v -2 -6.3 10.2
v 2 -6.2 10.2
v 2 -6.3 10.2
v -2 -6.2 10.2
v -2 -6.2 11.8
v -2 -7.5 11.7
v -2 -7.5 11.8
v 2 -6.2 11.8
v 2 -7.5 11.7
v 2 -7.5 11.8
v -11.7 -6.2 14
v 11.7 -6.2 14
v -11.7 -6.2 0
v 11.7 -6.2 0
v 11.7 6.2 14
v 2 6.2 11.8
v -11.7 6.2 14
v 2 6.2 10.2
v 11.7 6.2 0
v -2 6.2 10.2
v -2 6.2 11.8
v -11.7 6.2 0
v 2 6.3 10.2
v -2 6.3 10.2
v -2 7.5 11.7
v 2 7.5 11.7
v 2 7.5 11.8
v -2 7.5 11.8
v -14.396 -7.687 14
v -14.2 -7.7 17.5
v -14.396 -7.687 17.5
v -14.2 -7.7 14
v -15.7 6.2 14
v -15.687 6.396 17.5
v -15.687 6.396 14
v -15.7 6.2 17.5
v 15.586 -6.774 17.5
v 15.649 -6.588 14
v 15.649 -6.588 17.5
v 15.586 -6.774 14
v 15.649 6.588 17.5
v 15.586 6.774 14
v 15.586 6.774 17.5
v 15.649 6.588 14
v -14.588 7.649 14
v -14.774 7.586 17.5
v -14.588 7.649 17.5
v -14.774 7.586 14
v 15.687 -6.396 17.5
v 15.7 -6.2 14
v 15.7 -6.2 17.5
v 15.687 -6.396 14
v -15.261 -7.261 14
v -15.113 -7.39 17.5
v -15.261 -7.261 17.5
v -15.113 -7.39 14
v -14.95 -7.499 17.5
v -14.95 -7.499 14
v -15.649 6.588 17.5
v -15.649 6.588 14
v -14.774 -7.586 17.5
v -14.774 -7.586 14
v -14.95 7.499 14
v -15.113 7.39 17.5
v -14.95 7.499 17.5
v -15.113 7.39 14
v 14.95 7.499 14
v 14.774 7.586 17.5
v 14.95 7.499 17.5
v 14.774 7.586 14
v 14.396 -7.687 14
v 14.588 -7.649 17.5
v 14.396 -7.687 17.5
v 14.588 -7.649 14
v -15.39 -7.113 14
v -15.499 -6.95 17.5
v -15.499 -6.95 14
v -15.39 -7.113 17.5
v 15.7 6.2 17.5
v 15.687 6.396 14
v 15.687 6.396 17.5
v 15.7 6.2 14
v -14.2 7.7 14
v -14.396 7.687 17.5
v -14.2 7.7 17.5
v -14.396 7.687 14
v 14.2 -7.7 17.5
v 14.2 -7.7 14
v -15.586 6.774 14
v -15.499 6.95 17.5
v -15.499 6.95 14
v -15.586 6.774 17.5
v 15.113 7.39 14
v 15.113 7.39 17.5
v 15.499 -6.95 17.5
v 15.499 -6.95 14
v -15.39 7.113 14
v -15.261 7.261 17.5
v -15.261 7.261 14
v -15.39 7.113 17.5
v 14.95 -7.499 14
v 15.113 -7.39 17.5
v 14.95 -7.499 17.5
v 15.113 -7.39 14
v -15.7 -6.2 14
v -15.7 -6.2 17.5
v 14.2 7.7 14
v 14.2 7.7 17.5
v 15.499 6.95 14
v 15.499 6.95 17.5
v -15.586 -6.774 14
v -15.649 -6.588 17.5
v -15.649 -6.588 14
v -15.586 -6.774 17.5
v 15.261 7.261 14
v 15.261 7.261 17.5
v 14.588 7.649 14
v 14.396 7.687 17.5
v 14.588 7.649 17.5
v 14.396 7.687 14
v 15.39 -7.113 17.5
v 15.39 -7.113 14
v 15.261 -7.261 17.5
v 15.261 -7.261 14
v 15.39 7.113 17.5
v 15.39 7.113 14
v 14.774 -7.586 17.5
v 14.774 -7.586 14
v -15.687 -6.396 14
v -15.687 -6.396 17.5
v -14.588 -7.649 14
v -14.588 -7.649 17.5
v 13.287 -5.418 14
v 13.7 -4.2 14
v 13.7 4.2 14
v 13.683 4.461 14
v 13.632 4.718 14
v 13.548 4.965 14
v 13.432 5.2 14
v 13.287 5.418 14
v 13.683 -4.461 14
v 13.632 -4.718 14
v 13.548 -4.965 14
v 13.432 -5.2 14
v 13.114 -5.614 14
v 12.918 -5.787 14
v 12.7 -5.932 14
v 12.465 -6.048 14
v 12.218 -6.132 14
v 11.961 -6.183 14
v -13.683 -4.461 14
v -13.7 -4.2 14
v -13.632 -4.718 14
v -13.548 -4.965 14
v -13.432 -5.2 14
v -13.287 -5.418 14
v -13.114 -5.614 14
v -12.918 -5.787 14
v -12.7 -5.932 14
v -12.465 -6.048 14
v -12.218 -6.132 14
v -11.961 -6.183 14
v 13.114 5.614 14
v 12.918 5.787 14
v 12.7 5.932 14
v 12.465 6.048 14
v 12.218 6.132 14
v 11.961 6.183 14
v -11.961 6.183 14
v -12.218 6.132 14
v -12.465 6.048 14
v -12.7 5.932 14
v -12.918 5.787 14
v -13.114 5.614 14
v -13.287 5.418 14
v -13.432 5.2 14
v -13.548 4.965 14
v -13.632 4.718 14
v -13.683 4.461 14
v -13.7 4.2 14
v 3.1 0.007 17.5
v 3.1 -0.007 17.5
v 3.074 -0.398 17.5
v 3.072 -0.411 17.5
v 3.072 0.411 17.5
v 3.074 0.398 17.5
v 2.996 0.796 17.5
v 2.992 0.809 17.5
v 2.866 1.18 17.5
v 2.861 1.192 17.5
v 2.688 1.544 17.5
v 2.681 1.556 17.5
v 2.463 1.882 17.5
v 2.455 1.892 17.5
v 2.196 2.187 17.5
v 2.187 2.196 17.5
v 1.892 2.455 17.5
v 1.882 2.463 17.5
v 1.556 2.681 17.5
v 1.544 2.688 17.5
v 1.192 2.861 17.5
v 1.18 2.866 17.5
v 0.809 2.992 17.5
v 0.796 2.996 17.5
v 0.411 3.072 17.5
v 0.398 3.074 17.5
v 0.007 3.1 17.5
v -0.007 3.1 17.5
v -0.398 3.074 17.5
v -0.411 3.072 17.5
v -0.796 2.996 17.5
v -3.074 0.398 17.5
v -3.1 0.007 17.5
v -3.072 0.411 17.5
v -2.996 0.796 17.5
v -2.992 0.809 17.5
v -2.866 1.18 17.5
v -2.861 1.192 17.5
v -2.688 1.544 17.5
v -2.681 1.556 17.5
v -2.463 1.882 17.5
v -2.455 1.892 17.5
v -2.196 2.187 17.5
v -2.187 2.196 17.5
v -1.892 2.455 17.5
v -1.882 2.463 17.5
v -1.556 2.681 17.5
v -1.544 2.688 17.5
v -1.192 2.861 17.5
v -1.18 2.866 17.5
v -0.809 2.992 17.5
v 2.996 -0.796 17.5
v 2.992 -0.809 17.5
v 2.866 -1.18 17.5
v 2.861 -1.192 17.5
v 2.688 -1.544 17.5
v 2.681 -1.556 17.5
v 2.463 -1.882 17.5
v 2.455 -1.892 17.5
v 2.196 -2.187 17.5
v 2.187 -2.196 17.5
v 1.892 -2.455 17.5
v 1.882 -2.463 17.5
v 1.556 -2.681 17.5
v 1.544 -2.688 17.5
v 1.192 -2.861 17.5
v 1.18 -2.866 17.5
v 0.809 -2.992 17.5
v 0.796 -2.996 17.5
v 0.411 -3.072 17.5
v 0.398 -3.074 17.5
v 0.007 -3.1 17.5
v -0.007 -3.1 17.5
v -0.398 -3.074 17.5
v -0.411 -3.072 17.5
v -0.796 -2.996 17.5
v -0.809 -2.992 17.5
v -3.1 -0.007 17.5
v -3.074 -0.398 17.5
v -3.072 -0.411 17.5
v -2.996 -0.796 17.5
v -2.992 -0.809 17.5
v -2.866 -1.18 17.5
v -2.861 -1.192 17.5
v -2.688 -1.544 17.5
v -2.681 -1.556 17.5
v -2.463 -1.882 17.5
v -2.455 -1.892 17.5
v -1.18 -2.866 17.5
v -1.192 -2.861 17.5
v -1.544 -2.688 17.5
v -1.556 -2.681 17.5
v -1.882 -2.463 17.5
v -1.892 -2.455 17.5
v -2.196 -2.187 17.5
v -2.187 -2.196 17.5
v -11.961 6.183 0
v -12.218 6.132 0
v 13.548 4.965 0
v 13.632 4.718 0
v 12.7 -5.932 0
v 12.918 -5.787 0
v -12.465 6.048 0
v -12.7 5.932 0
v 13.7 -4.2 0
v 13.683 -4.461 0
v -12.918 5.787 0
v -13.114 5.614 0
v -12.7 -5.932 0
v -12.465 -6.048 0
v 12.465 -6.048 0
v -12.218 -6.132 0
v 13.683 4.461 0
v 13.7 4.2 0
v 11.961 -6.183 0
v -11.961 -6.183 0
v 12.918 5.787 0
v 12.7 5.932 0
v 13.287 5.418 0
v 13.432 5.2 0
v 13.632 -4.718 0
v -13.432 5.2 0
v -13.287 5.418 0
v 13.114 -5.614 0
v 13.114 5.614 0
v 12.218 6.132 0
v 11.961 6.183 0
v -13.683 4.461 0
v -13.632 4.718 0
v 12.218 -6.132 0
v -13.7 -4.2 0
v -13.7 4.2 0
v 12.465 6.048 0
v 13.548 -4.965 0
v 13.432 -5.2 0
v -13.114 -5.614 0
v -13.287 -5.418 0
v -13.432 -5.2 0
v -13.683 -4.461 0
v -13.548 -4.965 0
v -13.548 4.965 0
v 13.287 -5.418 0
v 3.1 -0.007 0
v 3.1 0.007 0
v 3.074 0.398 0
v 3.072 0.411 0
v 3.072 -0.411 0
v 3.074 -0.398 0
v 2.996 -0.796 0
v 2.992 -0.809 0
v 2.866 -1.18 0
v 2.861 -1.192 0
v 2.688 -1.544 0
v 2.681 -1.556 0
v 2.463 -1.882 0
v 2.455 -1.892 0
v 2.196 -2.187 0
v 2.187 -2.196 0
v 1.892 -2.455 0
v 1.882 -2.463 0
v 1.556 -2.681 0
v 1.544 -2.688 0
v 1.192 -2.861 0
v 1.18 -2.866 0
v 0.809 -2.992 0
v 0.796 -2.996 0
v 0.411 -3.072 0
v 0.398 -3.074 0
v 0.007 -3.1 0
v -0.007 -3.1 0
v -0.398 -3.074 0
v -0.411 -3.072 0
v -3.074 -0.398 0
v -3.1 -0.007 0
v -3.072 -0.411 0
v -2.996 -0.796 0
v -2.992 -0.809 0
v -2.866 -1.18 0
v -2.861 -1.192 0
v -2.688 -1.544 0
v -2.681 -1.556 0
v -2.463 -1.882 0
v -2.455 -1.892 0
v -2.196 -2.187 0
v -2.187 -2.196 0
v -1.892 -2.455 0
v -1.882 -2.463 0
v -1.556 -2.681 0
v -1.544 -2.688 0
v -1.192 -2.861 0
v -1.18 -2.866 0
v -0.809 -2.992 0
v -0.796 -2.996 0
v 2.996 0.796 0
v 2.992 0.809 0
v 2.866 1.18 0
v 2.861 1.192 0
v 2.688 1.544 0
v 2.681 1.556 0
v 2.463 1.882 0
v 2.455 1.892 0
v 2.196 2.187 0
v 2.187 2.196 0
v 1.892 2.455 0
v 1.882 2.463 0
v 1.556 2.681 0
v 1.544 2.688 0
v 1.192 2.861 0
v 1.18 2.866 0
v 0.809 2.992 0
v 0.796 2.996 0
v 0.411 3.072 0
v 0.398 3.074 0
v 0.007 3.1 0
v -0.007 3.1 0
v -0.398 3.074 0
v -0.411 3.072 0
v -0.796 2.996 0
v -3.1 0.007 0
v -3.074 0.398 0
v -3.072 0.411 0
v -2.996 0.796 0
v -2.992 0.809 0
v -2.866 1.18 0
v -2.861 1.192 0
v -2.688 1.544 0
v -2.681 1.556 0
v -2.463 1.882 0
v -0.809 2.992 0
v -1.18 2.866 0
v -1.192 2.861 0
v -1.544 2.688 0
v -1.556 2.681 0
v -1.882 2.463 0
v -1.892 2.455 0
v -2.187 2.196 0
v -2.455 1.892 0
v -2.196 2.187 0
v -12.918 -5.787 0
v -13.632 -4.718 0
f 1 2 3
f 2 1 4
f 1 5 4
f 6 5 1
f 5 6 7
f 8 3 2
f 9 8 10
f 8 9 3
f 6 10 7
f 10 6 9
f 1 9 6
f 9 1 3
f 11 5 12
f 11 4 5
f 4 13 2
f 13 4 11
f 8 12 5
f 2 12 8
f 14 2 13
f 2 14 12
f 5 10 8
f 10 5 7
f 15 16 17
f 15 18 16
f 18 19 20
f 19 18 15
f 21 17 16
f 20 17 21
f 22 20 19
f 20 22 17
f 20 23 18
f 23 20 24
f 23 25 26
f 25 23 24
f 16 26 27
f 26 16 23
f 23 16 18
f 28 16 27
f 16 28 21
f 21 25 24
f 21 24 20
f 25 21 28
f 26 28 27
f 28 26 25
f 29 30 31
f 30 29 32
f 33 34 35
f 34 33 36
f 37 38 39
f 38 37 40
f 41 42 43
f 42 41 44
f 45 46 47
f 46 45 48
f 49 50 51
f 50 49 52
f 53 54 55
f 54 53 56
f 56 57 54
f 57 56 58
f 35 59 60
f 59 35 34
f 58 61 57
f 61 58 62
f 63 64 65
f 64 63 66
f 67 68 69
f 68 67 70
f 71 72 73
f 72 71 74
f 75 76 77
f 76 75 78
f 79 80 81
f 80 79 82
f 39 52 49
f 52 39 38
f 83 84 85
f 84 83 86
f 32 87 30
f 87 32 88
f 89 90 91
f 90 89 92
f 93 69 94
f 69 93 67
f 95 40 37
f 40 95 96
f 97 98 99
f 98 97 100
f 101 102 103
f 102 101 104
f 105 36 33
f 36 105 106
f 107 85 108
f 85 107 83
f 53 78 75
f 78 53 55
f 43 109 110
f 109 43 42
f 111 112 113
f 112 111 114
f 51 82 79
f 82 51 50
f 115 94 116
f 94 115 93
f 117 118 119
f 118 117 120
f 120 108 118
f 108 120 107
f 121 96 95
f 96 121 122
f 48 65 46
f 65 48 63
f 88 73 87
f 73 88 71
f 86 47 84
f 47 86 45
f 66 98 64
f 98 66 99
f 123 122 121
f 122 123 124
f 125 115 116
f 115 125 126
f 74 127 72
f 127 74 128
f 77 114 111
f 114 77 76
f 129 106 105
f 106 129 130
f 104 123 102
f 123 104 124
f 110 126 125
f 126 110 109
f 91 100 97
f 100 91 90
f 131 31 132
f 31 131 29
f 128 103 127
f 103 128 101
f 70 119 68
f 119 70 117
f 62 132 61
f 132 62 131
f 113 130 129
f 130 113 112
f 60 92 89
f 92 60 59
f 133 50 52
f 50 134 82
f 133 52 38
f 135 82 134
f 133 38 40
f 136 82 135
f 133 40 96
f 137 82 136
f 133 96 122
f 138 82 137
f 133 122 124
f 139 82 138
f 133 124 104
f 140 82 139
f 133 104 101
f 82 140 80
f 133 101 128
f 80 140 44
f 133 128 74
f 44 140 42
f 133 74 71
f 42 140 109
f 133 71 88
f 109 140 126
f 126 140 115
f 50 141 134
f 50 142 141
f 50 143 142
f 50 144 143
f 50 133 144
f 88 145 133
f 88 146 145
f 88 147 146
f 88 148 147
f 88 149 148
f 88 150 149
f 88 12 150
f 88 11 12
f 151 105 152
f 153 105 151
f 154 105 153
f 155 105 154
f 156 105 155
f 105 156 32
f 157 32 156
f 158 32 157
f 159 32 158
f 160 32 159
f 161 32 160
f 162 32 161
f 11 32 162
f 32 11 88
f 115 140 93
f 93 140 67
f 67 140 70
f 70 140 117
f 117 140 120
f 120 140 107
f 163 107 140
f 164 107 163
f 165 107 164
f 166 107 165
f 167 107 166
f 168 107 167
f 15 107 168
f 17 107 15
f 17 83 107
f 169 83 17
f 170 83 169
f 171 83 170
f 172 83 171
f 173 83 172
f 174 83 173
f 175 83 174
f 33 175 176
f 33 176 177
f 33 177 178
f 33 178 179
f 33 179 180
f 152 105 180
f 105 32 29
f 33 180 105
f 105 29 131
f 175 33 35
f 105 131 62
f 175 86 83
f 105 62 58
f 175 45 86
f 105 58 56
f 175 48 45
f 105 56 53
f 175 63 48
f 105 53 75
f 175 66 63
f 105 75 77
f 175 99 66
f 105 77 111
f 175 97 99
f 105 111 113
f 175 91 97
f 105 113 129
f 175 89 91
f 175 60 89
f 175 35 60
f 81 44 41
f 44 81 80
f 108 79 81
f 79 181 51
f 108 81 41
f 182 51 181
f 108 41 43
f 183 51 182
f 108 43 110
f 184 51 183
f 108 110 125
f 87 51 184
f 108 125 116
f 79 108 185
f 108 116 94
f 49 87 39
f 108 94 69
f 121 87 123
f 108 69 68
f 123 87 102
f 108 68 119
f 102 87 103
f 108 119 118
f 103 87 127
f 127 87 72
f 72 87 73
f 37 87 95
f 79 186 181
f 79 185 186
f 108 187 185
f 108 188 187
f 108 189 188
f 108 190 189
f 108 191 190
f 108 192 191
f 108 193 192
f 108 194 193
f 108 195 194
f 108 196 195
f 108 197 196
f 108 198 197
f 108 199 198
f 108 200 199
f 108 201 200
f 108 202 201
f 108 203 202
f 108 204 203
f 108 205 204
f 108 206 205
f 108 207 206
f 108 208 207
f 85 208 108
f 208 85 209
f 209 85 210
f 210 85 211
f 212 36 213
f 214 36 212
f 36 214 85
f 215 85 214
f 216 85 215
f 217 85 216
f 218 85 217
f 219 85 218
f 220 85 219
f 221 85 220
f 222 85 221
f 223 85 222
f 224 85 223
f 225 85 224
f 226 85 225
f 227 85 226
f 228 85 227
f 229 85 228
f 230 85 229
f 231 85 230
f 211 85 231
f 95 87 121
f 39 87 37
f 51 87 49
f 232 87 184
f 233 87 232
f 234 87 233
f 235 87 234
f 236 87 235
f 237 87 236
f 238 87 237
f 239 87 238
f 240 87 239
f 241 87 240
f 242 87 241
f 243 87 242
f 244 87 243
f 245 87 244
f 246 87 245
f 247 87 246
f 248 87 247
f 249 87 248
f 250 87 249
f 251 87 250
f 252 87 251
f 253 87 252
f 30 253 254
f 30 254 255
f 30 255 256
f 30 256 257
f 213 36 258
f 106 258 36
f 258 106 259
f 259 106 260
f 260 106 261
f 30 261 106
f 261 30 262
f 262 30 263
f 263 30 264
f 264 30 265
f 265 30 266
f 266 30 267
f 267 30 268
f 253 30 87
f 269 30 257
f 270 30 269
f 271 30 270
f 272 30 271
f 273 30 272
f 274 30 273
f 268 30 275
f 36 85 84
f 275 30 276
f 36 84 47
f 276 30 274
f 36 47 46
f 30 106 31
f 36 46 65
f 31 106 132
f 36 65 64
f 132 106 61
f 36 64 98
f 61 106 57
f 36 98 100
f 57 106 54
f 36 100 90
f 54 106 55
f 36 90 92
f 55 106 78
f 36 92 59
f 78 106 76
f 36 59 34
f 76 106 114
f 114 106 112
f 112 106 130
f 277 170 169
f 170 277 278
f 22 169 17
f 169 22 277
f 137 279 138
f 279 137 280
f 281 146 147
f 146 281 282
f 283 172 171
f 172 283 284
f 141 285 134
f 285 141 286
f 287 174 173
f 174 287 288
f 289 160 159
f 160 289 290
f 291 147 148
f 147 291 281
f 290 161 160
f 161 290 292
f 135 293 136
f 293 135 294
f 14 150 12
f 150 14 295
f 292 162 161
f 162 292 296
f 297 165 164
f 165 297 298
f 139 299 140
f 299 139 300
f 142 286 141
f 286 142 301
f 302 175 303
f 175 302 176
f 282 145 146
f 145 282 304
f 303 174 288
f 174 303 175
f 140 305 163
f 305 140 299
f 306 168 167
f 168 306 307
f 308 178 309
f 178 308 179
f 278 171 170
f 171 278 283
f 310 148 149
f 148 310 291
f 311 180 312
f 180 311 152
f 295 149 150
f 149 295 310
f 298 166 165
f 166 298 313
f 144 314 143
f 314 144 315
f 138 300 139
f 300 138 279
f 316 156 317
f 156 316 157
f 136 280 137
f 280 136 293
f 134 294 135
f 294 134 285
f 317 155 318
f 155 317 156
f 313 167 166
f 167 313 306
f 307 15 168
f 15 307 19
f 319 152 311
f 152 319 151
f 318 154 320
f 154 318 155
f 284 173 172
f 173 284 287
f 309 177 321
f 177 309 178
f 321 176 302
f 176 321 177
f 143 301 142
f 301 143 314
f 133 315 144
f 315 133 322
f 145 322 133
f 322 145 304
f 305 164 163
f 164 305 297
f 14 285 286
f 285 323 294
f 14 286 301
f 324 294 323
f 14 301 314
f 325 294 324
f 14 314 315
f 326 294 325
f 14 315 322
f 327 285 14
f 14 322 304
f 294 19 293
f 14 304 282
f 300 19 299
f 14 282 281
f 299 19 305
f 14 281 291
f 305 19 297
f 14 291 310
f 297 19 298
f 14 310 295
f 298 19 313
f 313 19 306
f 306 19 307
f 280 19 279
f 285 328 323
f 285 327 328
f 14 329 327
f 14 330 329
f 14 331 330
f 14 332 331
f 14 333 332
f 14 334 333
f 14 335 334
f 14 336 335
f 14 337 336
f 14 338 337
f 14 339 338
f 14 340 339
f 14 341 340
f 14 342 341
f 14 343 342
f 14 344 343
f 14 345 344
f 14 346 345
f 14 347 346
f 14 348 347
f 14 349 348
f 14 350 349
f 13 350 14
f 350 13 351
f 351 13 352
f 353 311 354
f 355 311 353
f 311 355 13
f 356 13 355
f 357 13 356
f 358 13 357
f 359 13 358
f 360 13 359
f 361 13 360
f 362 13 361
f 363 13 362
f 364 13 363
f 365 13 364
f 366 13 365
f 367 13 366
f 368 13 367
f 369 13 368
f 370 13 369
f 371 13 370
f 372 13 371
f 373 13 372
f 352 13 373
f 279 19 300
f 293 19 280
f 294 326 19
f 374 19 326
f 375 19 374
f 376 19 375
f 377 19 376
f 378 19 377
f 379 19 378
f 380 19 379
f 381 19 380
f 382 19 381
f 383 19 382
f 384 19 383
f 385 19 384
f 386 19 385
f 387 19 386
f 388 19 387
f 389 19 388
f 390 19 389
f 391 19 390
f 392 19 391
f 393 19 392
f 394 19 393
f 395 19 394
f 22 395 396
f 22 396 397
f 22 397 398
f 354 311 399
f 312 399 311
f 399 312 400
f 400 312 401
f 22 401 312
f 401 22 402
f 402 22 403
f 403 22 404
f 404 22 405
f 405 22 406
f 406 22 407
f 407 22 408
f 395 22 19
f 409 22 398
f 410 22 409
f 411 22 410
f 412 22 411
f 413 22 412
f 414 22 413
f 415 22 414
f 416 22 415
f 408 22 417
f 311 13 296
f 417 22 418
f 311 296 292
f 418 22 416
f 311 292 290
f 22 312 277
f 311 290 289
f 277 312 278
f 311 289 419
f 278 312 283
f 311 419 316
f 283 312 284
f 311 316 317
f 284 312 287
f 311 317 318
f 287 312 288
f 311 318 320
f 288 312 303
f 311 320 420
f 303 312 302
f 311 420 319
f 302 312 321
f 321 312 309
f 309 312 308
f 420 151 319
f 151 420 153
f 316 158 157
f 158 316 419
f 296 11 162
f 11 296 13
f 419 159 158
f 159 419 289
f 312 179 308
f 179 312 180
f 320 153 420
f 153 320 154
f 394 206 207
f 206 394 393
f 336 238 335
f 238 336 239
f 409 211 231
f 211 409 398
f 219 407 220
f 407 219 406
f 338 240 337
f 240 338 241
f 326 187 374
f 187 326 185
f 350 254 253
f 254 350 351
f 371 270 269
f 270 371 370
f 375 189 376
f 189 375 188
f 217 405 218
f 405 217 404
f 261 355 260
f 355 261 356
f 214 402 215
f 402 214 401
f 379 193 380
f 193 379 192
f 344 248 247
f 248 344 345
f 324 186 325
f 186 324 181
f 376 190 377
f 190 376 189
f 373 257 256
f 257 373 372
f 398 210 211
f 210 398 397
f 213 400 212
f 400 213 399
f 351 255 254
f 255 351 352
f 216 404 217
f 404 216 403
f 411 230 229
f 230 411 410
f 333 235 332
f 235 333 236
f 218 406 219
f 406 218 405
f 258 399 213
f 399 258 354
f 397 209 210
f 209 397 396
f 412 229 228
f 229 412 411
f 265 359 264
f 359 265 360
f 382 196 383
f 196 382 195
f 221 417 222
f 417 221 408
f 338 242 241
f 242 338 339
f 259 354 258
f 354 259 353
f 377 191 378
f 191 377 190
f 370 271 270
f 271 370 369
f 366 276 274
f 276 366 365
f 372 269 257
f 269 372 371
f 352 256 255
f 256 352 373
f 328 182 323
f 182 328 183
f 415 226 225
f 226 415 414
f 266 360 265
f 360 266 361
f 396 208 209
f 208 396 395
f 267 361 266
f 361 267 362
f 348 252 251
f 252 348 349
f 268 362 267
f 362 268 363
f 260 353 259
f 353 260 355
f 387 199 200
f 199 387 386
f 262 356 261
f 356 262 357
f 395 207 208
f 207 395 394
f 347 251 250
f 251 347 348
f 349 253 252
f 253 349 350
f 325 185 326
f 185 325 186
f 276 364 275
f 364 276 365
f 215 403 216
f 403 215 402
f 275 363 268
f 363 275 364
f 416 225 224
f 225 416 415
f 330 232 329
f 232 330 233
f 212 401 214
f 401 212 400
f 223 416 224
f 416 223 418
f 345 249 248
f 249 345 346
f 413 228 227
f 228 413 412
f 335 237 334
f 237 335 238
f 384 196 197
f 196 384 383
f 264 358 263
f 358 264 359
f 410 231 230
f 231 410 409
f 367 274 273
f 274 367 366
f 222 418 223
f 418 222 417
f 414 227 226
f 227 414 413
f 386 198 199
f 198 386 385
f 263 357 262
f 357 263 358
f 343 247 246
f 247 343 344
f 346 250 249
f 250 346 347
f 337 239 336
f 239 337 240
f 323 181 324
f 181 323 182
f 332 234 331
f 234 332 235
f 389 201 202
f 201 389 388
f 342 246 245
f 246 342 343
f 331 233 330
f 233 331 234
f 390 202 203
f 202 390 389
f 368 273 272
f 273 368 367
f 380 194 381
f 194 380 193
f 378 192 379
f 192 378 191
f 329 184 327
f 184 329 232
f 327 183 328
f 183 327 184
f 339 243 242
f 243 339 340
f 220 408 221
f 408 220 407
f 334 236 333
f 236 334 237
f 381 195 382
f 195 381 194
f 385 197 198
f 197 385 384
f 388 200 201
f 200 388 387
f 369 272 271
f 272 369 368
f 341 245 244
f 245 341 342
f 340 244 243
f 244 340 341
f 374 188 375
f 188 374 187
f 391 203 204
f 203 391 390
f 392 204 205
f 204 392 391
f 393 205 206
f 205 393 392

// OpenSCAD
// file: insert_base.scad
// ============================================
// MODULAR CABLE ORGANIZER - BASE INSERT MODULE
// ============================================
// This is the parent module for all insert types
// Include this file and call insert_with_port() with a port shape
// ============================================

include <parameters.scad>

// === BASE INSERT WITH CUSTOM BODY DEPTH ===
module insert_blank_custom(body_depth) {
    union() {
        // Base plate (sits in frame slot)
        rounded_box_rect(insert_width, insert_height, insert_base_depth, 1.5);
        
        // Body (protrudes out front) - custom depth
        translate([0, 0, insert_base_depth])
            rounded_box_rect(insert_body_width, insert_body_height, body_depth, 2);
        
        // Snap tabs on all 4 sides
        snap_tabs_all();
    }
}

// === BASE INSERT (default depth - for backwards compatibility) ===
module insert_blank() {
    insert_blank_custom(insert_body_depth);
}

// === INSERT WITH THROUGH-HOLE PORT (custom depth) ===
// Pass body_depth and a 2D shape as children
module insert_with_port_custom(body_depth) {
    total_depth = insert_base_depth + body_depth;
    difference() {
        insert_blank_custom(body_depth);
        
        // Cut port hole ALL THE WAY through (tube shape)
        translate([0, 0, -0.1])
            linear_extrude(total_depth + 0.2)
            offset(r=port_clearance)  // Add clearance to port opening
            children();
    }
}

// === INSERT WITH THROUGH-HOLE PORT (default depth) ===
module insert_with_port() {
    insert_with_port_custom(insert_body_depth) children();
}

// === PRE-MADE INSERT MODULES WITH CORRECT DEPTHS ===
module insert_usbc() {
    insert_with_port_custom(usbc_body_depth) port_usbc();
}

module insert_usba() {
    insert_with_port_custom(usba_body_depth) port_usba();
}

module insert_usb_mini() {
    insert_with_port_custom(usb_mini_body_depth) port_usb_mini();
}

module insert_usb_micro() {
    insert_with_port_custom(usb_micro_body_depth) port_usb_micro();
}

module insert_usb_b() {
    insert_with_port_custom(usb_b_body_depth) port_usb_b();
}

module insert_lightning() {
    insert_with_port_custom(lightning_body_depth) port_lightning();
}

module insert_hdmi() {
    insert_with_port_custom(hdmi_body_depth) port_hdmi();
}

module insert_audio_jack() {
    insert_with_port_custom(audio_jack_body_depth) port_audio_jack();
}

// === SNAP TABS (on neck/body - catch on frame cutouts) ===
// Tabs are on the body, positioned to engage with frame wall cutouts
module snap_tabs_all() {
    // Position tabs up on body (clear of base/frame)
    tab_z = insert_base_depth + snap_tab_offset;
    
    // Tabs on all 4 sides of the body
    for (angle = [0, 90, 180, 270]) {
        rotate([0, 0, angle])
            translate([0, insert_body_height/2, tab_z])
            neck_snap_tab();
    }
}

module neck_snap_tab() {
    // Wedge shape (FLIPPED): 
    // - Peak/taper on BOTTOM - slides past back plate when inserting
    // - Flat on TOP - catches and holds
    hull() {
        // Peak of wedge (protruding, at BOTTOM of tab)
        translate([-snap_tab_width/2, snap_tab_protrude, 0])
            cube([snap_tab_width, 0.1, 0.1]);
        // Flat top (at body surface, TOP of tab)
        translate([-snap_tab_width/2, 0, snap_tab_thick])
            cube([snap_tab_width, 0.1, 0.1]);
        // Base of wedge (at body surface, bottom)
        translate([-snap_tab_width/2, 0, 0])
            cube([snap_tab_width, 0.1, 0.1]);
    }
}

module snap_tab_horizontal() {
    hull() {
        translate([0, -snap_tab_protrude/2, 0])
            cube([snap_tab_width, 0.1, snap_tab_thick], center=true);
        translate([0, snap_tab_protrude/2, snap_tab_thick * 0.2])
            cube([snap_tab_width, 0.1, snap_tab_thick * 0.6], center=true);
    }
}

module snap_tab_vertical() {
    hull() {
        translate([-snap_tab_protrude/2, 0, 0])
            cube([0.1, snap_tab_width, snap_tab_thick], center=true);
        translate([snap_tab_protrude/2, 0, snap_tab_thick * 0.2])
            cube([0.1, snap_tab_width, snap_tab_thick * 0.6], center=true);
    }
}

// === UTILITY MODULES ===
module rounded_box_rect(w, d, h, r) {
    translate([0, 0, h/2])
        hull() {
            for (x = [-1, 1], y = [-1, 1])
                translate([x * (w/2 - r), y * (d/2 - r), 0])
                    cylinder(h=h, r=r, center=true);
        }
}

// === PORT SHAPE MODULES (2D) ===
// These define the cutout shapes for each connector type

module port_rounded_rect(w, h, r) {
    // Standard rounded rectangle
    hull() {
        for (x = [-1, 1], y = [-1, 1])
            translate([x * (w/2 - r), y * (h/2 - r)])
                circle(r=r);
    }
}

module port_usbc() {
    port_rounded_rect(usbc_w, usbc_h, usbc_r);
}

module port_usba() {
    port_rounded_rect(usba_w, usba_h, usba_r);
}

module port_usb_mini() {
    port_rounded_rect(usb_mini_w, usb_mini_h, usb_mini_r);
}

module port_usb_micro() {
    port_rounded_rect(usb_micro_w, usb_micro_h, usb_micro_r);
}

module port_usb_b() {
    // USB-B has beveled top corners
    hull() {
        // Bottom corners (full radius)
        for (x = [-1, 1])
            translate([x * (usb_b_w/2 - usb_b_r), -(usb_b_h/2 - usb_b_r)])
                circle(r=usb_b_r);
        // Top corners (chamfered - moved inward)
        for (x = [-1, 1])
            translate([x * (usb_b_w/2 - usb_b_r - 1), (usb_b_h/2 - usb_b_r)])
                circle(r=usb_b_r);
    }
}

module port_lightning() {
    port_rounded_rect(lightning_w, lightning_h, lightning_r);
}

module port_hdmi() {
    // HDMI is tapered (wider at top)
    hull() {
        // Top (wider)
        for (x = [-1, 1])
            translate([x * (hdmi_w/2 - hdmi_r), (hdmi_h/2 - hdmi_r)])
                circle(r=hdmi_r);
        // Bottom (narrower)
        for (x = [-1, 1])
            translate([x * (hdmi_w/2 - hdmi_r - 1), -(hdmi_h/2 - hdmi_r)])
                circle(r=hdmi_r);
    }
}

module port_audio_jack() {
    circle(d=audio_jack_dia);
}

module port_label_recess() {
    // Shallow rectangular recess for labels
    square([label_w, label_h], center=true);
}

// === RENDER (for testing this file directly) ===
// insert_blank();
// file: parameters.scad
// ============================================
// MODULAR CABLE ORGANIZER - SHARED PARAMETERS
// ============================================
// All dimensions in mm - include this in all files
// ============================================

$fn = 48;

// === TOLERANCES ===
clearance = 0.3;
port_clearance = 0.1;  // Extra clearance for port openings (reduced - 0.2 was too loose for USB-C)
wall = 1.6;

// === SLOT DIMENSIONS (2:1 aspect ratio) - scaled to 2/3 ===
slot_width = 32;  // Reduced by 1mm for more compact insert
slot_height = 16;  // Reduced by 1mm for more compact insert
slot_depth = 4;  // Reduced from 6mm - less frame depth needed

// === FRAME STRUCTURE ===
frame_wall = 0.5;   // Reduced for more compact frame
frame_border = 8;  // Increased by 10mm for mounting holes with countersink
frame_back = 2;     // Slightly thicker for snap catch strength
mount_hole_dia = 3;
countersink_dia = 6;  // Diameter of countersink for screw heads
countersink_depth = 2;  // Depth of countersink

// === GRID ===
grid_cols = 2;
grid_rows = 2;

// === INSERT BASE DIMENSIONS ===
insert_width = slot_width - (2 * clearance);
insert_height = slot_height - (2 * clearance);
insert_base_depth = slot_depth - 0.5;

// === INSERT BODY (protrudes from frame) ===
insert_body_width = insert_width - 4;
insert_body_height = insert_height - 3;
insert_body_depth = 12;  // Deep enough to accommodate male cable connectors
insert_top_thick = 1.5;  // Top platform thickness

// === SNAP TABS (on neck/body - catch on back plate) ===
snap_tab_width = 4;
snap_tab_protrude = 1.2;  // How far tab sticks out from body
snap_tab_thick = 1.5;     // Z thickness of tab
snap_tab_offset = 2.2;      // Distance from base to tab bottom on insert (increased to clear frame)

// === CONNECTOR PORT DIMENSIONS & BODY DEPTHS ===
// Port dimensions from reference blueprints
// Body depths sized to match typical male connector lengths

// USB-C: 8.4 x 2.6mm, male connector ~9mm
usbc_w = 8.4;
usbc_h = 2.6;
usbc_r = 1.0;
usbc_body_depth = 9;

// USB-A: 14.0 x 6.5mm, male connector ~13mm
usba_w = 14.0;
usba_h = 6.5;
usba_r = 0.5;
usba_body_depth = 13;

// USB Mini: 6.9 x 3.0mm, male connector ~9mm
usb_mini_w = 6.9;
usb_mini_h = 3.0;
usb_mini_r = 0.5;
usb_mini_body_depth = 9;

// USB Micro: 6.9 x 1.8mm, male connector ~7mm
usb_micro_w = 6.9;
usb_micro_h = 1.8;
usb_micro_r = 0.3;
usb_micro_body_depth = 7;

// USB-B: 8.0 x 7.5mm, male connector ~14mm
usb_b_w = 8.0;
usb_b_h = 7.5;
usb_b_r = 1.0;
usb_b_body_depth = 14;

// Lightning: 6.7 x 1.5mm, male connector ~8mm
lightning_w = 6.7;
lightning_h = 1.5;
lightning_r = 0.5;
lightning_body_depth = 8;

// HDMI: 14.0 x 4.5mm, male connector ~16mm
hdmi_w = 14.0;
hdmi_h = 4.5;
hdmi_r = 0.5;
hdmi_body_depth = 16;

// 3.5mm Audio Jack: male plug ~14mm
audio_jack_dia = 6.0;
audio_jack_body_depth = 14;

// Blank/Label: recessed area for label
label_w = 30;
label_h = 12;
label_depth = 0.8;

// === CALCULATED VALUES ===
frame_total_depth = frame_back + slot_depth;
grid_width = (grid_cols * slot_width) + ((grid_cols - 1) * frame_wall);
grid_height = (grid_rows * slot_height) + ((grid_rows - 1) * frame_wall);
frame_width = grid_width + (2 * frame_border);
frame_height_total = grid_height + (2 * frame_border);
insert_total_depth = insert_base_depth + insert_body_depth;
// main file
// ============================================
// PRINT FILE: 3.5mm Audio Jack Insert
// ============================================
// Body depth: 14mm (matches 3.5mm male plug)
// Print with port side DOWN (flat on bed)
// No supports needed - through-hole design
// ============================================

include <parameters.scad>
include <insert_base.scad>

// Audio Jack insert - oriented for printing (port side down)
total_depth = insert_base_depth + audio_jack_body_depth;

rotate([180, 0, 0])
translate([0, 0, -total_depth])
    insert_audio_jack();
